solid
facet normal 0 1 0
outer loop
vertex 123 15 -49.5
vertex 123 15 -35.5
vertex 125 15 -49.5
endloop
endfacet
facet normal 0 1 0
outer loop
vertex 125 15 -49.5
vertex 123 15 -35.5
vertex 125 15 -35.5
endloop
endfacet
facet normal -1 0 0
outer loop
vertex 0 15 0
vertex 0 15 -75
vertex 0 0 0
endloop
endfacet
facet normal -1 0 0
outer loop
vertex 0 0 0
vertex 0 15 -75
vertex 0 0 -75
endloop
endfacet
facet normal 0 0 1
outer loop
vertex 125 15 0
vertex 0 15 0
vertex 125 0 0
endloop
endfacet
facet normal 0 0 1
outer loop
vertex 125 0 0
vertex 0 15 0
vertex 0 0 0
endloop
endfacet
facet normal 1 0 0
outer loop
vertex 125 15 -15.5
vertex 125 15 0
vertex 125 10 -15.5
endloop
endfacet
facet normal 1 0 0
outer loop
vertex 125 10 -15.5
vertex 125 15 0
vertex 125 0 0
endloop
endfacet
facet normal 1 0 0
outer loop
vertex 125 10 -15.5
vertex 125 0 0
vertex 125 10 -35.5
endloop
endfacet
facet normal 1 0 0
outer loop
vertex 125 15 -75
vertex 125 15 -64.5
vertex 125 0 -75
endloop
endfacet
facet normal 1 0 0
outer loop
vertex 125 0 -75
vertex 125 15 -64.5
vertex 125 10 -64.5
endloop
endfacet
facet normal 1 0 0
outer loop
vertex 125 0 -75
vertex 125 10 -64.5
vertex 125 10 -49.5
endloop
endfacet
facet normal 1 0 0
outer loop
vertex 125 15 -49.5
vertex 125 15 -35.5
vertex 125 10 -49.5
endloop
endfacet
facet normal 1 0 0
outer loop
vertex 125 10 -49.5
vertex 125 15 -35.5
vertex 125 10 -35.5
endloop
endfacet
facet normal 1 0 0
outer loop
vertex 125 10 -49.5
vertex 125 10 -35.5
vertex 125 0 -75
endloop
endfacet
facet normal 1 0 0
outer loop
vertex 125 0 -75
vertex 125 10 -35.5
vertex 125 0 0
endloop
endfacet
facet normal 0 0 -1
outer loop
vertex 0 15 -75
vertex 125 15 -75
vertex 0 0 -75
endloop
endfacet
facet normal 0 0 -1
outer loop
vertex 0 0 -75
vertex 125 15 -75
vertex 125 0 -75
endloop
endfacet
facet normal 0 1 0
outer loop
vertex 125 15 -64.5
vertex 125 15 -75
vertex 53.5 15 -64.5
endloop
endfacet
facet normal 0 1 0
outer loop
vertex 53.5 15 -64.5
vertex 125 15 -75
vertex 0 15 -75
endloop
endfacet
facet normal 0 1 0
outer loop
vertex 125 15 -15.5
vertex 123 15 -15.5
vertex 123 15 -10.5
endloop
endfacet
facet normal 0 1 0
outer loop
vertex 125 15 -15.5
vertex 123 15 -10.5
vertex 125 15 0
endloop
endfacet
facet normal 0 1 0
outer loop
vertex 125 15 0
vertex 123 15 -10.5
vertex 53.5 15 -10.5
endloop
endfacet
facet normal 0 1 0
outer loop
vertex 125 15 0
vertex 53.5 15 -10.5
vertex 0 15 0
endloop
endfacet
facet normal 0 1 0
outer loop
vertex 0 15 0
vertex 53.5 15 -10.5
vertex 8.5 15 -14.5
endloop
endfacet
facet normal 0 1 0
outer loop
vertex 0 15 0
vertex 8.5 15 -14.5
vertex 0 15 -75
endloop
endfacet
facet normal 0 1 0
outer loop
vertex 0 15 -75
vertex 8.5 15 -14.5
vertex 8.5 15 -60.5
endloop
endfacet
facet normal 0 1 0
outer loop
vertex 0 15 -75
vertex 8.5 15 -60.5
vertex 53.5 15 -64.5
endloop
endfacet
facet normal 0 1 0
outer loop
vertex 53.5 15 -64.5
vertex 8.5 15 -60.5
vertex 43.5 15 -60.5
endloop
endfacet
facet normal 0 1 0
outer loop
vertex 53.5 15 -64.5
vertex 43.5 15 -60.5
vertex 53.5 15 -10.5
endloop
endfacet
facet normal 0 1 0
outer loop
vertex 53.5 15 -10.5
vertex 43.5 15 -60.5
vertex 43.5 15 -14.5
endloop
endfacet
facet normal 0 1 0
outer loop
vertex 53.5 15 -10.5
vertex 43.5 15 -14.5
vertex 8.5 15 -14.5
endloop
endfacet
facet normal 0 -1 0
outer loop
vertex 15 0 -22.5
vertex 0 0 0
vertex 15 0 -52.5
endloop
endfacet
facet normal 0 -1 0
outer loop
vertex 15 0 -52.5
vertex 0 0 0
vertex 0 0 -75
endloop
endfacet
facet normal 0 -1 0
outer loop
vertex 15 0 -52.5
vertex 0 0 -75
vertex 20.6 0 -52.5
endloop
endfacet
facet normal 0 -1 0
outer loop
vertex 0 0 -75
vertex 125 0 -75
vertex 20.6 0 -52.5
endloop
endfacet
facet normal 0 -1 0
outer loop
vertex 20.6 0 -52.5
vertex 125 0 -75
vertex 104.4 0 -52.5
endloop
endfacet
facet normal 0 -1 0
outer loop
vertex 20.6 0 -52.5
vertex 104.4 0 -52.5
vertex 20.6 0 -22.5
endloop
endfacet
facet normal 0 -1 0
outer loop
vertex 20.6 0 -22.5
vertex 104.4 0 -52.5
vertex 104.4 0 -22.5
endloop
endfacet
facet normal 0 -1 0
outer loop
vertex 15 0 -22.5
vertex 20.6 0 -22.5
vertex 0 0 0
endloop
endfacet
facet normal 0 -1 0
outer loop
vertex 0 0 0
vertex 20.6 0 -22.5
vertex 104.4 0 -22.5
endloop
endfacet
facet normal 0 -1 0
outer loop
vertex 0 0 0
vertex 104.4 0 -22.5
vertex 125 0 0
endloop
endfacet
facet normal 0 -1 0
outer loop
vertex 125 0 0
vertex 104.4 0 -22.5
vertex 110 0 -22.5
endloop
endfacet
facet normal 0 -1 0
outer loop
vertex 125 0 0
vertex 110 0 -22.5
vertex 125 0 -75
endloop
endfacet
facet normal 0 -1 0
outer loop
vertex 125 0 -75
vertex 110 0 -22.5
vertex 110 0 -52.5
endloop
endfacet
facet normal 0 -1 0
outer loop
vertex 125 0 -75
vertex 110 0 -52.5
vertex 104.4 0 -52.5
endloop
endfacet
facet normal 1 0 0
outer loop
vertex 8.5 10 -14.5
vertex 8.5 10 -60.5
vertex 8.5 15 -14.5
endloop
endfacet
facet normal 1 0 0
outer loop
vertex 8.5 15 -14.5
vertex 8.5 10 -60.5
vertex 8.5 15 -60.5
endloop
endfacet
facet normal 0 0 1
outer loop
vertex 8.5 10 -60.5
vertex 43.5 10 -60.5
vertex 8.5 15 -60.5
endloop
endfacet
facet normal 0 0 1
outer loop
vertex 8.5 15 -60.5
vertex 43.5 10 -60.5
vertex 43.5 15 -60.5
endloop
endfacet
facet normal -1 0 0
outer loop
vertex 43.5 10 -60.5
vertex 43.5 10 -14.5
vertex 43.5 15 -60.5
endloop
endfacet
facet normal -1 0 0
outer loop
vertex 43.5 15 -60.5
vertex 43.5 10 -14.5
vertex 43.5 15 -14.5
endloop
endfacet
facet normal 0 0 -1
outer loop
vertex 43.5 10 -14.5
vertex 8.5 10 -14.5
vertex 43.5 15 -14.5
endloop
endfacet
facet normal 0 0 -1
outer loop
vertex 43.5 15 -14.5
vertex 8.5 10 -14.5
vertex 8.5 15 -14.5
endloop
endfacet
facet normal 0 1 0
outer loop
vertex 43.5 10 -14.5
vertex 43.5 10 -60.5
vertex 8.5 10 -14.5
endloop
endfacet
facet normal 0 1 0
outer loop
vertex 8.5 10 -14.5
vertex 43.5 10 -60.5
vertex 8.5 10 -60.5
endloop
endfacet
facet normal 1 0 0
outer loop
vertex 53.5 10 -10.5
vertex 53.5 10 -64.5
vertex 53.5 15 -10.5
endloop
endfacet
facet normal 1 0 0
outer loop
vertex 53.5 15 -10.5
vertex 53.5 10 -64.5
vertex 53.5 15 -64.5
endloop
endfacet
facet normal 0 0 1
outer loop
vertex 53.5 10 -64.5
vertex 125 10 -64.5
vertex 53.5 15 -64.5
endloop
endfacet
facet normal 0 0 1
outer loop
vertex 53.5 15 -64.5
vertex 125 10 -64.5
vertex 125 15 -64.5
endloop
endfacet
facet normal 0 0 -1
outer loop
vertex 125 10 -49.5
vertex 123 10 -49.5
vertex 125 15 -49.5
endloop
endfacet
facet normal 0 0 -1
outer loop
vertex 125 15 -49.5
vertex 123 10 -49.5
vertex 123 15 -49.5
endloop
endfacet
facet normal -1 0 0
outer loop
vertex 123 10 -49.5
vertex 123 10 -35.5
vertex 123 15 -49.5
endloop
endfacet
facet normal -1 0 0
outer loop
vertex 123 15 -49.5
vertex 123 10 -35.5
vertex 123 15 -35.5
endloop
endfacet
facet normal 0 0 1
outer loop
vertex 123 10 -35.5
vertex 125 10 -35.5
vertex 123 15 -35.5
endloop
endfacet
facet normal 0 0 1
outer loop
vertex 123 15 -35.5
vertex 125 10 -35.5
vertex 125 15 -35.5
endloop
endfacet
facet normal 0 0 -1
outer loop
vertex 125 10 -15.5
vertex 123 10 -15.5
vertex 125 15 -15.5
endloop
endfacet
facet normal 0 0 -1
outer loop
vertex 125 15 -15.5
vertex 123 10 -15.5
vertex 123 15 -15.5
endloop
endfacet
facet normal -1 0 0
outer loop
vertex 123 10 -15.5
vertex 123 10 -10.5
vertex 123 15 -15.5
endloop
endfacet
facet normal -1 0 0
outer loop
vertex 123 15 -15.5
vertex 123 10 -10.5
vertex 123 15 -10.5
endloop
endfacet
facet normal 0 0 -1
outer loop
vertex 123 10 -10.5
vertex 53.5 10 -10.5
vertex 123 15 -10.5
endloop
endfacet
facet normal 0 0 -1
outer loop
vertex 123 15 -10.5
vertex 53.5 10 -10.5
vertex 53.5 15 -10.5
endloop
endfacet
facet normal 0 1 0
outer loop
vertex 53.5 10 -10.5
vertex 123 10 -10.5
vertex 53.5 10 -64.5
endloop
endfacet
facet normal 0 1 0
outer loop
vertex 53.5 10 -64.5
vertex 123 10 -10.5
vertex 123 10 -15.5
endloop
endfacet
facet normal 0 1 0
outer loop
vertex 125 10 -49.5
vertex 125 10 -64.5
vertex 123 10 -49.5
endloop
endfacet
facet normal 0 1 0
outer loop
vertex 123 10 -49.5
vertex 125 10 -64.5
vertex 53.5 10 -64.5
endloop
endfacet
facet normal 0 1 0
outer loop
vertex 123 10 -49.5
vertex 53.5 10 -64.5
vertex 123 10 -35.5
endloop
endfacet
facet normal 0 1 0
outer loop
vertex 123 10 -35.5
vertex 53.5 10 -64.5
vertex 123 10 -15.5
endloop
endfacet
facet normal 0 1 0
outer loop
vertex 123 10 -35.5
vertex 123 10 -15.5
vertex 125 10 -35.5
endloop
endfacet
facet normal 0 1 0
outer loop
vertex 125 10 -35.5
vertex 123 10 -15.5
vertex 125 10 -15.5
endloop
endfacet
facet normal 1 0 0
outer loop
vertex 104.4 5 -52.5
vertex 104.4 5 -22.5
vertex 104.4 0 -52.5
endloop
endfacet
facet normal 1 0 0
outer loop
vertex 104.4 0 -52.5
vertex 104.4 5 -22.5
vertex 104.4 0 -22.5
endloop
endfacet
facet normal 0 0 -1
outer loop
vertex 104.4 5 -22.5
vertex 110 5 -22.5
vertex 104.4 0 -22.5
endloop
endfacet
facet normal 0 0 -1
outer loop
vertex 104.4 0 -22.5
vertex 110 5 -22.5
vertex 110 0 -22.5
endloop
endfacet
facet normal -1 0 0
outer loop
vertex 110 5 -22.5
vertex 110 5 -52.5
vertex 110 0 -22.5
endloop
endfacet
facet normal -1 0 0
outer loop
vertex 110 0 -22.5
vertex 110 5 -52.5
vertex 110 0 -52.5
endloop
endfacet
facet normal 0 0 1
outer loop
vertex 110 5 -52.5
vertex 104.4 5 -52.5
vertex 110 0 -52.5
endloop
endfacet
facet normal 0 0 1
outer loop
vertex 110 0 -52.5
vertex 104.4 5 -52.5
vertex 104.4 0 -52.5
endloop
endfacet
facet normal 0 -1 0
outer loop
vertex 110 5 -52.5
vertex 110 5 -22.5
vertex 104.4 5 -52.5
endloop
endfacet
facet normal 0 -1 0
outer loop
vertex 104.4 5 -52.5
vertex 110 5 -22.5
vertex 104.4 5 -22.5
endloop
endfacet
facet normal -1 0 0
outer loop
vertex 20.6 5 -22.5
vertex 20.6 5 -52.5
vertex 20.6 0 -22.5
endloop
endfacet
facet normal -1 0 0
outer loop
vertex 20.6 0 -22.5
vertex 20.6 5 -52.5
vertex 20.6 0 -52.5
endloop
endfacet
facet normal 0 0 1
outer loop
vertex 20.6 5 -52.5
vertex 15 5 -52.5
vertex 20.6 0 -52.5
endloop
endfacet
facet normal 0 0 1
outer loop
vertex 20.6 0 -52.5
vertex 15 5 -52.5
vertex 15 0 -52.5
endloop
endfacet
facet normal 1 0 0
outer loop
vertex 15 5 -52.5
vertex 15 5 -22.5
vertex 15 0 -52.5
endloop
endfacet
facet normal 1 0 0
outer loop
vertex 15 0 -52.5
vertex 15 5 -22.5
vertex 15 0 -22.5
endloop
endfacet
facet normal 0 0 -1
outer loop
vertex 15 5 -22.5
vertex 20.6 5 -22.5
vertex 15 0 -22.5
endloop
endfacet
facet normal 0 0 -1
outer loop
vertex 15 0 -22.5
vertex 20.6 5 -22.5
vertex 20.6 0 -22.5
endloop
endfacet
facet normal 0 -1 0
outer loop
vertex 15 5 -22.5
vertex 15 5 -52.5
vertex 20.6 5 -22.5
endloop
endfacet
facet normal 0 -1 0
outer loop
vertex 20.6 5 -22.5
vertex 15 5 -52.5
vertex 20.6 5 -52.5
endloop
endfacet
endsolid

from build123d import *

# Parameters (mm, degrees)
SKETCH1_W           = 125
SKETCH1_H           = 75
BOSS_EXTRUDE1_DEPTH = 15
SKETCH2_W           = 35
SKETCH2_H           = 46
CUT_EXTRUDE4_DEPTH  = 5
SKETCH3_W           = 5.6
SKETCH3_H           = 30
CUT_EXTRUDE5_DEPTH  = 5


with BuildPart() as part:
    # Sketch1 → Boss-Extrude1 (new body)
    with BuildSketch(Plane(origin=(0, 0, 0), x_dir=(1, 0, 0), z_dir=(0, 1, 0))):
        with Locations((62.5, 37.5)):
            Rectangle(SKETCH1_W, SKETCH1_H)
    extrude(amount=BOSS_EXTRUDE1_DEPTH)

    # Sketch2 → Cut-Extrude4 (cut)
    with BuildSketch(Plane(origin=(0, 15, 0), x_dir=(1, 0, 0), z_dir=(0, 1, 0))):
        Polygon((53.5, 64.5), (125, 64.5), (125, 49.5), (123, 49.5), (123, 35.5), (125, 35.5), (125, 15.5), (123, 15.5), (123, 10.5), (53.5, 10.5), align=None)
        with Locations((26, 37.5)):
            Rectangle(SKETCH2_W, SKETCH2_H)
    extrude(amount=-CUT_EXTRUDE4_DEPTH, mode=Mode.SUBTRACT)

    # Sketch3 → Cut-Extrude5 (cut)
    with BuildSketch(Plane.XZ):
        with Locations((17.8, -37.5)):
            Rectangle(SKETCH3_W, SKETCH3_H)
        with Locations((107.2, -37.5)):
            Rectangle(SKETCH3_W, SKETCH3_H)
    extrude(amount=-CUT_EXTRUDE5_DEPTH, mode=Mode.SUBTRACT)


solid = part.part
